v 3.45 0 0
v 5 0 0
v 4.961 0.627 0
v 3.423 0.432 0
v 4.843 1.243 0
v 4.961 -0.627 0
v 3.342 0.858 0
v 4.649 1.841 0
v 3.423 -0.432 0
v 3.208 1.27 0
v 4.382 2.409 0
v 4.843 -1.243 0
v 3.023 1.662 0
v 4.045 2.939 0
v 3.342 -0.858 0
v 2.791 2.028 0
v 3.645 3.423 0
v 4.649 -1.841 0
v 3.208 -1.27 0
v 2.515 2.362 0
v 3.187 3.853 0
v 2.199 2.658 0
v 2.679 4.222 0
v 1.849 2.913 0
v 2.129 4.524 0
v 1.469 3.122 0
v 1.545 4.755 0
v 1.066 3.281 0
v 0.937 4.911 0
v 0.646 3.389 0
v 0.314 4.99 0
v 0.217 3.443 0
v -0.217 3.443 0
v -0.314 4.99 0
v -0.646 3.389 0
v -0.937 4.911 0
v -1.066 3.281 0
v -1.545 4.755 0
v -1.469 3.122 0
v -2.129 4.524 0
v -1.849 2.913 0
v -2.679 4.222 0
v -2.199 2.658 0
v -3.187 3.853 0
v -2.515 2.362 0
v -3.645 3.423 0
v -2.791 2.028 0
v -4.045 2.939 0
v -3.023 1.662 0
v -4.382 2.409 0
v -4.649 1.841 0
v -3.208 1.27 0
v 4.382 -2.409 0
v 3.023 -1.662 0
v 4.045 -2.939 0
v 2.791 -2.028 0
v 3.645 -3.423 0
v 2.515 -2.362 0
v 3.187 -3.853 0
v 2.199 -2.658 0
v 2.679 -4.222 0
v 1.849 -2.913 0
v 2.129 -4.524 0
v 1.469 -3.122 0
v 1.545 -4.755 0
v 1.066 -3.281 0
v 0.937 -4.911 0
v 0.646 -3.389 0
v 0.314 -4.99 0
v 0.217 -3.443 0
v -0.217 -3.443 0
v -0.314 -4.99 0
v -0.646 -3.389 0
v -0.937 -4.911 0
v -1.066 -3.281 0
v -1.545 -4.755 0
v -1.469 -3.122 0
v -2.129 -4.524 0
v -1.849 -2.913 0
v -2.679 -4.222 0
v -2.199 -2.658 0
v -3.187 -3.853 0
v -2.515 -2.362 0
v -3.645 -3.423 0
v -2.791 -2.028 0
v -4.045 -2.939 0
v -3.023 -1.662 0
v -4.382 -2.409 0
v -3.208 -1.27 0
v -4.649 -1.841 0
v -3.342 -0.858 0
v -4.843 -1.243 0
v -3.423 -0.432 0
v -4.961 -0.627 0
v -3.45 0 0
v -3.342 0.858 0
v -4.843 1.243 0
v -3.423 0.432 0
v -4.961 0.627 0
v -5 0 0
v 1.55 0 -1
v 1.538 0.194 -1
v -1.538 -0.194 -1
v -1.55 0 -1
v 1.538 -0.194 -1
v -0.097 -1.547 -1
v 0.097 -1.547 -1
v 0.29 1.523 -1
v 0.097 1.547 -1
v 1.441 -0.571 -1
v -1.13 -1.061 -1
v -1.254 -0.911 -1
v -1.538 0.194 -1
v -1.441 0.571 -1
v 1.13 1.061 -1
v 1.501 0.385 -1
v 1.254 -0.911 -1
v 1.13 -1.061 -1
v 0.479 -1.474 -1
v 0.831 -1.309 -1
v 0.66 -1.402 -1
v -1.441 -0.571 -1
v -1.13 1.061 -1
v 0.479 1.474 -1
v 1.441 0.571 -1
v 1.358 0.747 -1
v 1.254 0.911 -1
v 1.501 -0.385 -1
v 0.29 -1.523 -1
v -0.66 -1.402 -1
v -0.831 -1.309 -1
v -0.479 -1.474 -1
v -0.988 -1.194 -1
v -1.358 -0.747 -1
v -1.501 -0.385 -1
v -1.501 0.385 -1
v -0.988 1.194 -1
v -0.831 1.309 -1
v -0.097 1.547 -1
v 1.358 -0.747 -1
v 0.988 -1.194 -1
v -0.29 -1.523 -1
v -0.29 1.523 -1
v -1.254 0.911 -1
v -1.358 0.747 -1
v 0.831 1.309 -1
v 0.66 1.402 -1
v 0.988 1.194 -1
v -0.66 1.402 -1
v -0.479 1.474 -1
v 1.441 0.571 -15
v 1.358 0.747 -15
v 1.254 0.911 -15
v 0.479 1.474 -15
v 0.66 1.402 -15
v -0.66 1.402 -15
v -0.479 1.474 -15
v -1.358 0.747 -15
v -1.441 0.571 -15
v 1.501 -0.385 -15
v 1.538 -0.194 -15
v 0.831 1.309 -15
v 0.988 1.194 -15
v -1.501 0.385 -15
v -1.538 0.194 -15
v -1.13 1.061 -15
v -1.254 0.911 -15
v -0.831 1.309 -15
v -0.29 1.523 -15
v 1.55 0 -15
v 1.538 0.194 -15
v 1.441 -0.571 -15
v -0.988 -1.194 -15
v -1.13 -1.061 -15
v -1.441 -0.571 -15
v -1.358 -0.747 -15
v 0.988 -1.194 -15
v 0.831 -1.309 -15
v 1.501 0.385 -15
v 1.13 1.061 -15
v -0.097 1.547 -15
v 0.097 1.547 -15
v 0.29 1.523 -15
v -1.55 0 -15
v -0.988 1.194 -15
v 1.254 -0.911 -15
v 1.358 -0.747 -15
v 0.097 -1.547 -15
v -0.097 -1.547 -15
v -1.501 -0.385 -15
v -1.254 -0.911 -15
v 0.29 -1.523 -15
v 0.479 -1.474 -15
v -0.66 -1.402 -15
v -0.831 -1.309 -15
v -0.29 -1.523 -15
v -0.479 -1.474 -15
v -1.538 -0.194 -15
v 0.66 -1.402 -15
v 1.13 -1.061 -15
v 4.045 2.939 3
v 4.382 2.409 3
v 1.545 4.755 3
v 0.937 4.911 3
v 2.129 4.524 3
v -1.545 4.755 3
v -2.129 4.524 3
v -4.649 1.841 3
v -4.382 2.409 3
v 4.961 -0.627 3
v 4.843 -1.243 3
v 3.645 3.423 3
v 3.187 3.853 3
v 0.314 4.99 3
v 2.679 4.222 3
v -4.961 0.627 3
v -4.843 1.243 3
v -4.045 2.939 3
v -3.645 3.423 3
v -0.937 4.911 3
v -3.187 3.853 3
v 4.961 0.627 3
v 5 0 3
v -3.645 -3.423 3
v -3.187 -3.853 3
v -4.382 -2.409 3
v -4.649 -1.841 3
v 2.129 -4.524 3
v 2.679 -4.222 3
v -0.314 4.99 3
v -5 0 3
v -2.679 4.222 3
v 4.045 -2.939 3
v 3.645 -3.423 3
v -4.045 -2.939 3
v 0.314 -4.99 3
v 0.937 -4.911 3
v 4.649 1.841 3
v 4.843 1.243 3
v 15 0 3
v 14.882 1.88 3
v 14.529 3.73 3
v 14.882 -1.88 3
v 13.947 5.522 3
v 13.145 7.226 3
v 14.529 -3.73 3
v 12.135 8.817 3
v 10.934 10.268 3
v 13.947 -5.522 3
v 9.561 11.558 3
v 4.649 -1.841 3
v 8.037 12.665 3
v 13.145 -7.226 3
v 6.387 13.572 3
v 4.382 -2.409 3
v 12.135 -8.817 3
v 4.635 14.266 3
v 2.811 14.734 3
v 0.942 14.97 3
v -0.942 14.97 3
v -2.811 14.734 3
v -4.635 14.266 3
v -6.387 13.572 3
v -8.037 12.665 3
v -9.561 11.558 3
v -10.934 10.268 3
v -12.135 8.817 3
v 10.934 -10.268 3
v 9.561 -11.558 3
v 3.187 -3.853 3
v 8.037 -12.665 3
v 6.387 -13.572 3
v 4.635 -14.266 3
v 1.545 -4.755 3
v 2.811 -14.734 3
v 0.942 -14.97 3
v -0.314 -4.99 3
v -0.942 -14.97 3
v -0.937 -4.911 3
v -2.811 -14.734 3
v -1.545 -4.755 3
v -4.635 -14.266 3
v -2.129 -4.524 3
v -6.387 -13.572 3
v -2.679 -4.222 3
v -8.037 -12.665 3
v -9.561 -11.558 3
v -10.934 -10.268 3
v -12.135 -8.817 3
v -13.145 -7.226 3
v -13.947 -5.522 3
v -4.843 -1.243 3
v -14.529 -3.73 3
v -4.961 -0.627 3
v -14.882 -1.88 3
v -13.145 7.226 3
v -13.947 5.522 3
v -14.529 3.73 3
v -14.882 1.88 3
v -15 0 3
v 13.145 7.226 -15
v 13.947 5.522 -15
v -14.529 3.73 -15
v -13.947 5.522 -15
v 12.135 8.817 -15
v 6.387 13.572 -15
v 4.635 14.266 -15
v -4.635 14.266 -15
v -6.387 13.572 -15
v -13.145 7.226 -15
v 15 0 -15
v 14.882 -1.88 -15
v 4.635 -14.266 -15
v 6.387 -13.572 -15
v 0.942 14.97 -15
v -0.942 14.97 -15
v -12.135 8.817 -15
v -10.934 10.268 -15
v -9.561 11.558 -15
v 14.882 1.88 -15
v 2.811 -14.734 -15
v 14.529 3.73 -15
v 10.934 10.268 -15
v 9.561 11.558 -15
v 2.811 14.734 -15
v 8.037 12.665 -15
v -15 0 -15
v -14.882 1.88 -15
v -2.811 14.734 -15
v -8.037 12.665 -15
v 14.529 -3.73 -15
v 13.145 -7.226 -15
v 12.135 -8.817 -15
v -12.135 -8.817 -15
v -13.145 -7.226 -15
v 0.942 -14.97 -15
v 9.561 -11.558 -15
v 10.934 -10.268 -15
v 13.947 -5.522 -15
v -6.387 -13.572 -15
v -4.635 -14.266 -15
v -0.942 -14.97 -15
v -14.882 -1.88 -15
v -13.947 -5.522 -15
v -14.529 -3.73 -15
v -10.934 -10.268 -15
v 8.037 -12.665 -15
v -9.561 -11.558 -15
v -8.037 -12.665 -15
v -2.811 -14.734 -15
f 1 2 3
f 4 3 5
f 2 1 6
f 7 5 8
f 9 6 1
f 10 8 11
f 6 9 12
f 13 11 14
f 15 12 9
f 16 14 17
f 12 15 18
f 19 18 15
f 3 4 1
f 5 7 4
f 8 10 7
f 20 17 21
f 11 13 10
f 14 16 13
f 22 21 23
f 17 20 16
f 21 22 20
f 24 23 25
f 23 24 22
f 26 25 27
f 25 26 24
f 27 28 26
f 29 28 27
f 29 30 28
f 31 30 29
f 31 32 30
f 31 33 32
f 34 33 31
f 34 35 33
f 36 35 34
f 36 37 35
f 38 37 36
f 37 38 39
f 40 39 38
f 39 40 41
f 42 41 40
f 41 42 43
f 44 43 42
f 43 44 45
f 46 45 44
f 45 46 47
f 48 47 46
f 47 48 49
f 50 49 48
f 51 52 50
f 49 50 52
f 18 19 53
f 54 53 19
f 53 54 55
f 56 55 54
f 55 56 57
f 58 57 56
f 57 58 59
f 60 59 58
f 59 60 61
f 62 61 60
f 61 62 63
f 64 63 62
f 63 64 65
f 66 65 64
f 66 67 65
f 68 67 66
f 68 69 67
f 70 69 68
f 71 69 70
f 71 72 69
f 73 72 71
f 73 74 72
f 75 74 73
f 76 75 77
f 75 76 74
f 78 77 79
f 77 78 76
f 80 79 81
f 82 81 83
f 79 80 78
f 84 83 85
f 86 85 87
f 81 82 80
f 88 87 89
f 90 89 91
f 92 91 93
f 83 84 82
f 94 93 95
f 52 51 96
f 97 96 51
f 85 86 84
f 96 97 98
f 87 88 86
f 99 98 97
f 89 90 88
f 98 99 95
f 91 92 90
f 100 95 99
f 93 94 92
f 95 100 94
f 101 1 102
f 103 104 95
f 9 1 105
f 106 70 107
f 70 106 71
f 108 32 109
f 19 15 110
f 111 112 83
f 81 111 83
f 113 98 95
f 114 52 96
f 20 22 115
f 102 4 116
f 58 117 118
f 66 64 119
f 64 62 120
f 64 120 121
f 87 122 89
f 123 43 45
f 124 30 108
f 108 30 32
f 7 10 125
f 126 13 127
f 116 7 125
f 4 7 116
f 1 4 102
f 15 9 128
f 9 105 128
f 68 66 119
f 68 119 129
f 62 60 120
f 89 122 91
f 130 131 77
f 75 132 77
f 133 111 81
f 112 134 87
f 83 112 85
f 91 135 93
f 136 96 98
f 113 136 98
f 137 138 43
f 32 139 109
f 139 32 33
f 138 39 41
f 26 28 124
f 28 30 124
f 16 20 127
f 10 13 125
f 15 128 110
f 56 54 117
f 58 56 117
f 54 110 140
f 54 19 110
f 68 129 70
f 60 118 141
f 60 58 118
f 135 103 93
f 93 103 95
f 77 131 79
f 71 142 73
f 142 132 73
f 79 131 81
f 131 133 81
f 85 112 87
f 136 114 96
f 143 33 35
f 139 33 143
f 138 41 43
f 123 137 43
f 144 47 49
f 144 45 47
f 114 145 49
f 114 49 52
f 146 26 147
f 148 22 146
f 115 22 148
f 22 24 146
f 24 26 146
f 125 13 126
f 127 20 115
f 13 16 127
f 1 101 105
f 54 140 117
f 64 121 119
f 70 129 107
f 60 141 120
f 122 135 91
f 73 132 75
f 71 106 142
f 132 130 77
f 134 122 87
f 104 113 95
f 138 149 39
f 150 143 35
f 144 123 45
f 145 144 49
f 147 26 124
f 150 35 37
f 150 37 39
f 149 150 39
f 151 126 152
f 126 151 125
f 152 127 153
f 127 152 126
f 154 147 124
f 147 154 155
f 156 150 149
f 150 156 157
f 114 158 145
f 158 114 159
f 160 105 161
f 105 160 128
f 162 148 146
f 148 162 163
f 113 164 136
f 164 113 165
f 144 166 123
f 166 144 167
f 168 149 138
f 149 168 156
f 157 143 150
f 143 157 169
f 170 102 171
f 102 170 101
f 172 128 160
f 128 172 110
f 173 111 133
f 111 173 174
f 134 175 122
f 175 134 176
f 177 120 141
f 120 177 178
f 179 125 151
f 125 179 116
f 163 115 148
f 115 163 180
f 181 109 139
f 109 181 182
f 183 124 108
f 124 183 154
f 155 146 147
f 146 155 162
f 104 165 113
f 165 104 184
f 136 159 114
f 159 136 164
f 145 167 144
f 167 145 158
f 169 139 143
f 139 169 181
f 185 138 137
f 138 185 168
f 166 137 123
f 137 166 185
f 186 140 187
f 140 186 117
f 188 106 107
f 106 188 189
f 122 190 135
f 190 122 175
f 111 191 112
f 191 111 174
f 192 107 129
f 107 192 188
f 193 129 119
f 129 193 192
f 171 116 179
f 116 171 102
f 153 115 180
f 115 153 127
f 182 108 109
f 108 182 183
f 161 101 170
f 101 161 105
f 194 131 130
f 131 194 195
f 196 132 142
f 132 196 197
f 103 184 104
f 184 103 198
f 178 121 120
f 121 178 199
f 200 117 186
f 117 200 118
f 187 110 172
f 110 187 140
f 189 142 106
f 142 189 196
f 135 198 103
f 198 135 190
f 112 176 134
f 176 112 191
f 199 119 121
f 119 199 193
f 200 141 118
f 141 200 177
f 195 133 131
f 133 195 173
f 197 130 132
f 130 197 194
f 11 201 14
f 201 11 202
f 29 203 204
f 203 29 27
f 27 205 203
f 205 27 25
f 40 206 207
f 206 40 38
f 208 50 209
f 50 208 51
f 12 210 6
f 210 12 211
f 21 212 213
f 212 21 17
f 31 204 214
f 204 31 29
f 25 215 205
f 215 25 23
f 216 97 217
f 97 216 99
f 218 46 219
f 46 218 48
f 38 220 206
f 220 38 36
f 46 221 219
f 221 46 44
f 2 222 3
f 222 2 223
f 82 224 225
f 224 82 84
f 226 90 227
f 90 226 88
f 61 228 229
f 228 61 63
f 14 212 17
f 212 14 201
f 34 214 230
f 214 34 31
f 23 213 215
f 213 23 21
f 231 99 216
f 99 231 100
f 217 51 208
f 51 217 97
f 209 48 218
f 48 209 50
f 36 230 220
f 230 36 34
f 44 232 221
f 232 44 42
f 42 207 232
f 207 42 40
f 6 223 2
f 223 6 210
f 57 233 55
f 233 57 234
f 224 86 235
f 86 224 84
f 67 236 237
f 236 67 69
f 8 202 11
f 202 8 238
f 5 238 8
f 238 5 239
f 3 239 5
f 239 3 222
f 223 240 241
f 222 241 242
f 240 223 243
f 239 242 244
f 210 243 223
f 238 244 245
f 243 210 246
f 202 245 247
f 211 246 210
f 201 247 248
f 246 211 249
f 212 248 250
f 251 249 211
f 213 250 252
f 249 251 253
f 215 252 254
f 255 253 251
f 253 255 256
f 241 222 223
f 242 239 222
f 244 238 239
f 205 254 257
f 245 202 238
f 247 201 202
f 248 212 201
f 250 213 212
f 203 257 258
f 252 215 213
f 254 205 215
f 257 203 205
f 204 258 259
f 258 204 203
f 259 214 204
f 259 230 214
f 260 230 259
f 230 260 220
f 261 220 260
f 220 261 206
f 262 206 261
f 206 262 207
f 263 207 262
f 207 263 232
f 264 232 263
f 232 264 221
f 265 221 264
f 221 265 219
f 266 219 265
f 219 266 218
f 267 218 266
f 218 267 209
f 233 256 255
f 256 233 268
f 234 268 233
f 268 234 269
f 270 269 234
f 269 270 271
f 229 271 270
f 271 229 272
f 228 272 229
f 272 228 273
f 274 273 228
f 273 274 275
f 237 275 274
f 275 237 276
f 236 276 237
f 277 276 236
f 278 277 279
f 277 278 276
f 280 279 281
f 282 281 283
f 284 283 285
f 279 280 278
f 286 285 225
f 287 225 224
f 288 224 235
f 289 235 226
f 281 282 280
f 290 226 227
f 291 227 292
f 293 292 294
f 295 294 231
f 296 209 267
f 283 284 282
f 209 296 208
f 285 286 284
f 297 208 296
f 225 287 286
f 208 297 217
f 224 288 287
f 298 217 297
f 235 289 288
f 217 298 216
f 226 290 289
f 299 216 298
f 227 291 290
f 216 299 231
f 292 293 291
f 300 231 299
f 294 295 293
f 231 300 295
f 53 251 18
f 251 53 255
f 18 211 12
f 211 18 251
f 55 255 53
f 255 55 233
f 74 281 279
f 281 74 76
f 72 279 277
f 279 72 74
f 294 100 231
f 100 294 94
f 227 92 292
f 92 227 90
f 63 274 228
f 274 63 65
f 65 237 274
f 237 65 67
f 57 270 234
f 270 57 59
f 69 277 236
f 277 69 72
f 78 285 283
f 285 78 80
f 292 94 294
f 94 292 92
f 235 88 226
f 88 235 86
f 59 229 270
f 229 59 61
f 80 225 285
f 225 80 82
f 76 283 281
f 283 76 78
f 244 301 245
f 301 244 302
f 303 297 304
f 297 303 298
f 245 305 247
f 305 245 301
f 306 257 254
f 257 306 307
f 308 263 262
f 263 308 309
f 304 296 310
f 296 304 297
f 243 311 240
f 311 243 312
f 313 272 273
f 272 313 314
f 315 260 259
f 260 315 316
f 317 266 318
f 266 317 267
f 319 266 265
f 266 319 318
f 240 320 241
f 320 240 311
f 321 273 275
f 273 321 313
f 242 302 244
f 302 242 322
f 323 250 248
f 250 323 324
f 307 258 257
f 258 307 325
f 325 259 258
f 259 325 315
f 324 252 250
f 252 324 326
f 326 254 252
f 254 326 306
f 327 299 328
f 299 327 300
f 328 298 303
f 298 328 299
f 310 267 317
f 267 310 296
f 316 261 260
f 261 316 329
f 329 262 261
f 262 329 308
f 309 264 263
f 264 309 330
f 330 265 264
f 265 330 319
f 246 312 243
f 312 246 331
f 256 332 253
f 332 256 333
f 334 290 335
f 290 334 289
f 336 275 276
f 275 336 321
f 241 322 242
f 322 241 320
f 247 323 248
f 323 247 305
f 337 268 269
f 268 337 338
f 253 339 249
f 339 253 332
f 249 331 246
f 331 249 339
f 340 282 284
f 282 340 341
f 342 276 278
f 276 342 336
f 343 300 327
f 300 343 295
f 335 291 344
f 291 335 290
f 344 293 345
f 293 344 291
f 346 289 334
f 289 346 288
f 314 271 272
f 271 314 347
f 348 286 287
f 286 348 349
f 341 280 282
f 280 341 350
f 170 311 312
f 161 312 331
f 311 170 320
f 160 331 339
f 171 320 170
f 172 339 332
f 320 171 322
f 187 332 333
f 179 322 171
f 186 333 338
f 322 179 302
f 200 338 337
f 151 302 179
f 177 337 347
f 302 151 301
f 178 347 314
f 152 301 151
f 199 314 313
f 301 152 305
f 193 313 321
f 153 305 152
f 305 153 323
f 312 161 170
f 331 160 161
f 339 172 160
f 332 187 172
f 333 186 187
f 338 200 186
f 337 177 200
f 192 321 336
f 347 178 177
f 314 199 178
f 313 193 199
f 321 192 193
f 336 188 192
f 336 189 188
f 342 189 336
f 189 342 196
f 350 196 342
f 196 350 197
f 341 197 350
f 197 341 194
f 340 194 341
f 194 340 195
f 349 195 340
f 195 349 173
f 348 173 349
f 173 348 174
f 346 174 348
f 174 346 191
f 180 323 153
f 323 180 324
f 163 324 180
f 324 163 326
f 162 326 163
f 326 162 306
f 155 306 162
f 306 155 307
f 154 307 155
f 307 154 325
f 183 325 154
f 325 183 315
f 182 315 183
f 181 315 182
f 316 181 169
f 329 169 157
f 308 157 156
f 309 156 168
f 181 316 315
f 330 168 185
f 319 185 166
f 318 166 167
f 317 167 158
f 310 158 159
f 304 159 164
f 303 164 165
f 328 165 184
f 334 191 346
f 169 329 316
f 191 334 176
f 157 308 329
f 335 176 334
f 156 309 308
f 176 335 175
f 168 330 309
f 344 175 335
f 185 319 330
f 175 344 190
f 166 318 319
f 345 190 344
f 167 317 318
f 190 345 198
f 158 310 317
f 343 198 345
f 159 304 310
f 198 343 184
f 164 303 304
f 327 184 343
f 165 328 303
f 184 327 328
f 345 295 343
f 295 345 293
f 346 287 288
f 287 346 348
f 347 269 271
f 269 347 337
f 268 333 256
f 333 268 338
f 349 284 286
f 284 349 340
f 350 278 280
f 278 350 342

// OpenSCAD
$fn = 50;


difference() {
	union() {
		translate(v = [0, 0, -15.0000000000]) {
			cylinder(h = 18, r = 15.0000000000);
		}
	}
	union() {
		translate(v = [0, 0, 0]) {
			rotate(a = [0, 0, 0]) {
				difference() {
					union() {
						translate(v = [0, 0, -18.0000000000]) {
							cylinder(h = 18, r = 1.2500000000);
						}
						translate(v = [0, 0, -1.0000000000]) {
							cylinder(h = 1.0000000000, r1 = 1.5500000000, r2 = 3.4500000000);
						}
						translate(v = [0, 0, -18.0000000000]) {
							cylinder(h = 18, r = 1.5500000000);
						}
						translate(v = [0, 0, -18.0000000000]) {
							cylinder(h = 18, r = 1.2500000000);
						}
					}
					union();
				}
			}
		}
		#cylinder(h = 3, r = 5.0000000000);
	}
}
